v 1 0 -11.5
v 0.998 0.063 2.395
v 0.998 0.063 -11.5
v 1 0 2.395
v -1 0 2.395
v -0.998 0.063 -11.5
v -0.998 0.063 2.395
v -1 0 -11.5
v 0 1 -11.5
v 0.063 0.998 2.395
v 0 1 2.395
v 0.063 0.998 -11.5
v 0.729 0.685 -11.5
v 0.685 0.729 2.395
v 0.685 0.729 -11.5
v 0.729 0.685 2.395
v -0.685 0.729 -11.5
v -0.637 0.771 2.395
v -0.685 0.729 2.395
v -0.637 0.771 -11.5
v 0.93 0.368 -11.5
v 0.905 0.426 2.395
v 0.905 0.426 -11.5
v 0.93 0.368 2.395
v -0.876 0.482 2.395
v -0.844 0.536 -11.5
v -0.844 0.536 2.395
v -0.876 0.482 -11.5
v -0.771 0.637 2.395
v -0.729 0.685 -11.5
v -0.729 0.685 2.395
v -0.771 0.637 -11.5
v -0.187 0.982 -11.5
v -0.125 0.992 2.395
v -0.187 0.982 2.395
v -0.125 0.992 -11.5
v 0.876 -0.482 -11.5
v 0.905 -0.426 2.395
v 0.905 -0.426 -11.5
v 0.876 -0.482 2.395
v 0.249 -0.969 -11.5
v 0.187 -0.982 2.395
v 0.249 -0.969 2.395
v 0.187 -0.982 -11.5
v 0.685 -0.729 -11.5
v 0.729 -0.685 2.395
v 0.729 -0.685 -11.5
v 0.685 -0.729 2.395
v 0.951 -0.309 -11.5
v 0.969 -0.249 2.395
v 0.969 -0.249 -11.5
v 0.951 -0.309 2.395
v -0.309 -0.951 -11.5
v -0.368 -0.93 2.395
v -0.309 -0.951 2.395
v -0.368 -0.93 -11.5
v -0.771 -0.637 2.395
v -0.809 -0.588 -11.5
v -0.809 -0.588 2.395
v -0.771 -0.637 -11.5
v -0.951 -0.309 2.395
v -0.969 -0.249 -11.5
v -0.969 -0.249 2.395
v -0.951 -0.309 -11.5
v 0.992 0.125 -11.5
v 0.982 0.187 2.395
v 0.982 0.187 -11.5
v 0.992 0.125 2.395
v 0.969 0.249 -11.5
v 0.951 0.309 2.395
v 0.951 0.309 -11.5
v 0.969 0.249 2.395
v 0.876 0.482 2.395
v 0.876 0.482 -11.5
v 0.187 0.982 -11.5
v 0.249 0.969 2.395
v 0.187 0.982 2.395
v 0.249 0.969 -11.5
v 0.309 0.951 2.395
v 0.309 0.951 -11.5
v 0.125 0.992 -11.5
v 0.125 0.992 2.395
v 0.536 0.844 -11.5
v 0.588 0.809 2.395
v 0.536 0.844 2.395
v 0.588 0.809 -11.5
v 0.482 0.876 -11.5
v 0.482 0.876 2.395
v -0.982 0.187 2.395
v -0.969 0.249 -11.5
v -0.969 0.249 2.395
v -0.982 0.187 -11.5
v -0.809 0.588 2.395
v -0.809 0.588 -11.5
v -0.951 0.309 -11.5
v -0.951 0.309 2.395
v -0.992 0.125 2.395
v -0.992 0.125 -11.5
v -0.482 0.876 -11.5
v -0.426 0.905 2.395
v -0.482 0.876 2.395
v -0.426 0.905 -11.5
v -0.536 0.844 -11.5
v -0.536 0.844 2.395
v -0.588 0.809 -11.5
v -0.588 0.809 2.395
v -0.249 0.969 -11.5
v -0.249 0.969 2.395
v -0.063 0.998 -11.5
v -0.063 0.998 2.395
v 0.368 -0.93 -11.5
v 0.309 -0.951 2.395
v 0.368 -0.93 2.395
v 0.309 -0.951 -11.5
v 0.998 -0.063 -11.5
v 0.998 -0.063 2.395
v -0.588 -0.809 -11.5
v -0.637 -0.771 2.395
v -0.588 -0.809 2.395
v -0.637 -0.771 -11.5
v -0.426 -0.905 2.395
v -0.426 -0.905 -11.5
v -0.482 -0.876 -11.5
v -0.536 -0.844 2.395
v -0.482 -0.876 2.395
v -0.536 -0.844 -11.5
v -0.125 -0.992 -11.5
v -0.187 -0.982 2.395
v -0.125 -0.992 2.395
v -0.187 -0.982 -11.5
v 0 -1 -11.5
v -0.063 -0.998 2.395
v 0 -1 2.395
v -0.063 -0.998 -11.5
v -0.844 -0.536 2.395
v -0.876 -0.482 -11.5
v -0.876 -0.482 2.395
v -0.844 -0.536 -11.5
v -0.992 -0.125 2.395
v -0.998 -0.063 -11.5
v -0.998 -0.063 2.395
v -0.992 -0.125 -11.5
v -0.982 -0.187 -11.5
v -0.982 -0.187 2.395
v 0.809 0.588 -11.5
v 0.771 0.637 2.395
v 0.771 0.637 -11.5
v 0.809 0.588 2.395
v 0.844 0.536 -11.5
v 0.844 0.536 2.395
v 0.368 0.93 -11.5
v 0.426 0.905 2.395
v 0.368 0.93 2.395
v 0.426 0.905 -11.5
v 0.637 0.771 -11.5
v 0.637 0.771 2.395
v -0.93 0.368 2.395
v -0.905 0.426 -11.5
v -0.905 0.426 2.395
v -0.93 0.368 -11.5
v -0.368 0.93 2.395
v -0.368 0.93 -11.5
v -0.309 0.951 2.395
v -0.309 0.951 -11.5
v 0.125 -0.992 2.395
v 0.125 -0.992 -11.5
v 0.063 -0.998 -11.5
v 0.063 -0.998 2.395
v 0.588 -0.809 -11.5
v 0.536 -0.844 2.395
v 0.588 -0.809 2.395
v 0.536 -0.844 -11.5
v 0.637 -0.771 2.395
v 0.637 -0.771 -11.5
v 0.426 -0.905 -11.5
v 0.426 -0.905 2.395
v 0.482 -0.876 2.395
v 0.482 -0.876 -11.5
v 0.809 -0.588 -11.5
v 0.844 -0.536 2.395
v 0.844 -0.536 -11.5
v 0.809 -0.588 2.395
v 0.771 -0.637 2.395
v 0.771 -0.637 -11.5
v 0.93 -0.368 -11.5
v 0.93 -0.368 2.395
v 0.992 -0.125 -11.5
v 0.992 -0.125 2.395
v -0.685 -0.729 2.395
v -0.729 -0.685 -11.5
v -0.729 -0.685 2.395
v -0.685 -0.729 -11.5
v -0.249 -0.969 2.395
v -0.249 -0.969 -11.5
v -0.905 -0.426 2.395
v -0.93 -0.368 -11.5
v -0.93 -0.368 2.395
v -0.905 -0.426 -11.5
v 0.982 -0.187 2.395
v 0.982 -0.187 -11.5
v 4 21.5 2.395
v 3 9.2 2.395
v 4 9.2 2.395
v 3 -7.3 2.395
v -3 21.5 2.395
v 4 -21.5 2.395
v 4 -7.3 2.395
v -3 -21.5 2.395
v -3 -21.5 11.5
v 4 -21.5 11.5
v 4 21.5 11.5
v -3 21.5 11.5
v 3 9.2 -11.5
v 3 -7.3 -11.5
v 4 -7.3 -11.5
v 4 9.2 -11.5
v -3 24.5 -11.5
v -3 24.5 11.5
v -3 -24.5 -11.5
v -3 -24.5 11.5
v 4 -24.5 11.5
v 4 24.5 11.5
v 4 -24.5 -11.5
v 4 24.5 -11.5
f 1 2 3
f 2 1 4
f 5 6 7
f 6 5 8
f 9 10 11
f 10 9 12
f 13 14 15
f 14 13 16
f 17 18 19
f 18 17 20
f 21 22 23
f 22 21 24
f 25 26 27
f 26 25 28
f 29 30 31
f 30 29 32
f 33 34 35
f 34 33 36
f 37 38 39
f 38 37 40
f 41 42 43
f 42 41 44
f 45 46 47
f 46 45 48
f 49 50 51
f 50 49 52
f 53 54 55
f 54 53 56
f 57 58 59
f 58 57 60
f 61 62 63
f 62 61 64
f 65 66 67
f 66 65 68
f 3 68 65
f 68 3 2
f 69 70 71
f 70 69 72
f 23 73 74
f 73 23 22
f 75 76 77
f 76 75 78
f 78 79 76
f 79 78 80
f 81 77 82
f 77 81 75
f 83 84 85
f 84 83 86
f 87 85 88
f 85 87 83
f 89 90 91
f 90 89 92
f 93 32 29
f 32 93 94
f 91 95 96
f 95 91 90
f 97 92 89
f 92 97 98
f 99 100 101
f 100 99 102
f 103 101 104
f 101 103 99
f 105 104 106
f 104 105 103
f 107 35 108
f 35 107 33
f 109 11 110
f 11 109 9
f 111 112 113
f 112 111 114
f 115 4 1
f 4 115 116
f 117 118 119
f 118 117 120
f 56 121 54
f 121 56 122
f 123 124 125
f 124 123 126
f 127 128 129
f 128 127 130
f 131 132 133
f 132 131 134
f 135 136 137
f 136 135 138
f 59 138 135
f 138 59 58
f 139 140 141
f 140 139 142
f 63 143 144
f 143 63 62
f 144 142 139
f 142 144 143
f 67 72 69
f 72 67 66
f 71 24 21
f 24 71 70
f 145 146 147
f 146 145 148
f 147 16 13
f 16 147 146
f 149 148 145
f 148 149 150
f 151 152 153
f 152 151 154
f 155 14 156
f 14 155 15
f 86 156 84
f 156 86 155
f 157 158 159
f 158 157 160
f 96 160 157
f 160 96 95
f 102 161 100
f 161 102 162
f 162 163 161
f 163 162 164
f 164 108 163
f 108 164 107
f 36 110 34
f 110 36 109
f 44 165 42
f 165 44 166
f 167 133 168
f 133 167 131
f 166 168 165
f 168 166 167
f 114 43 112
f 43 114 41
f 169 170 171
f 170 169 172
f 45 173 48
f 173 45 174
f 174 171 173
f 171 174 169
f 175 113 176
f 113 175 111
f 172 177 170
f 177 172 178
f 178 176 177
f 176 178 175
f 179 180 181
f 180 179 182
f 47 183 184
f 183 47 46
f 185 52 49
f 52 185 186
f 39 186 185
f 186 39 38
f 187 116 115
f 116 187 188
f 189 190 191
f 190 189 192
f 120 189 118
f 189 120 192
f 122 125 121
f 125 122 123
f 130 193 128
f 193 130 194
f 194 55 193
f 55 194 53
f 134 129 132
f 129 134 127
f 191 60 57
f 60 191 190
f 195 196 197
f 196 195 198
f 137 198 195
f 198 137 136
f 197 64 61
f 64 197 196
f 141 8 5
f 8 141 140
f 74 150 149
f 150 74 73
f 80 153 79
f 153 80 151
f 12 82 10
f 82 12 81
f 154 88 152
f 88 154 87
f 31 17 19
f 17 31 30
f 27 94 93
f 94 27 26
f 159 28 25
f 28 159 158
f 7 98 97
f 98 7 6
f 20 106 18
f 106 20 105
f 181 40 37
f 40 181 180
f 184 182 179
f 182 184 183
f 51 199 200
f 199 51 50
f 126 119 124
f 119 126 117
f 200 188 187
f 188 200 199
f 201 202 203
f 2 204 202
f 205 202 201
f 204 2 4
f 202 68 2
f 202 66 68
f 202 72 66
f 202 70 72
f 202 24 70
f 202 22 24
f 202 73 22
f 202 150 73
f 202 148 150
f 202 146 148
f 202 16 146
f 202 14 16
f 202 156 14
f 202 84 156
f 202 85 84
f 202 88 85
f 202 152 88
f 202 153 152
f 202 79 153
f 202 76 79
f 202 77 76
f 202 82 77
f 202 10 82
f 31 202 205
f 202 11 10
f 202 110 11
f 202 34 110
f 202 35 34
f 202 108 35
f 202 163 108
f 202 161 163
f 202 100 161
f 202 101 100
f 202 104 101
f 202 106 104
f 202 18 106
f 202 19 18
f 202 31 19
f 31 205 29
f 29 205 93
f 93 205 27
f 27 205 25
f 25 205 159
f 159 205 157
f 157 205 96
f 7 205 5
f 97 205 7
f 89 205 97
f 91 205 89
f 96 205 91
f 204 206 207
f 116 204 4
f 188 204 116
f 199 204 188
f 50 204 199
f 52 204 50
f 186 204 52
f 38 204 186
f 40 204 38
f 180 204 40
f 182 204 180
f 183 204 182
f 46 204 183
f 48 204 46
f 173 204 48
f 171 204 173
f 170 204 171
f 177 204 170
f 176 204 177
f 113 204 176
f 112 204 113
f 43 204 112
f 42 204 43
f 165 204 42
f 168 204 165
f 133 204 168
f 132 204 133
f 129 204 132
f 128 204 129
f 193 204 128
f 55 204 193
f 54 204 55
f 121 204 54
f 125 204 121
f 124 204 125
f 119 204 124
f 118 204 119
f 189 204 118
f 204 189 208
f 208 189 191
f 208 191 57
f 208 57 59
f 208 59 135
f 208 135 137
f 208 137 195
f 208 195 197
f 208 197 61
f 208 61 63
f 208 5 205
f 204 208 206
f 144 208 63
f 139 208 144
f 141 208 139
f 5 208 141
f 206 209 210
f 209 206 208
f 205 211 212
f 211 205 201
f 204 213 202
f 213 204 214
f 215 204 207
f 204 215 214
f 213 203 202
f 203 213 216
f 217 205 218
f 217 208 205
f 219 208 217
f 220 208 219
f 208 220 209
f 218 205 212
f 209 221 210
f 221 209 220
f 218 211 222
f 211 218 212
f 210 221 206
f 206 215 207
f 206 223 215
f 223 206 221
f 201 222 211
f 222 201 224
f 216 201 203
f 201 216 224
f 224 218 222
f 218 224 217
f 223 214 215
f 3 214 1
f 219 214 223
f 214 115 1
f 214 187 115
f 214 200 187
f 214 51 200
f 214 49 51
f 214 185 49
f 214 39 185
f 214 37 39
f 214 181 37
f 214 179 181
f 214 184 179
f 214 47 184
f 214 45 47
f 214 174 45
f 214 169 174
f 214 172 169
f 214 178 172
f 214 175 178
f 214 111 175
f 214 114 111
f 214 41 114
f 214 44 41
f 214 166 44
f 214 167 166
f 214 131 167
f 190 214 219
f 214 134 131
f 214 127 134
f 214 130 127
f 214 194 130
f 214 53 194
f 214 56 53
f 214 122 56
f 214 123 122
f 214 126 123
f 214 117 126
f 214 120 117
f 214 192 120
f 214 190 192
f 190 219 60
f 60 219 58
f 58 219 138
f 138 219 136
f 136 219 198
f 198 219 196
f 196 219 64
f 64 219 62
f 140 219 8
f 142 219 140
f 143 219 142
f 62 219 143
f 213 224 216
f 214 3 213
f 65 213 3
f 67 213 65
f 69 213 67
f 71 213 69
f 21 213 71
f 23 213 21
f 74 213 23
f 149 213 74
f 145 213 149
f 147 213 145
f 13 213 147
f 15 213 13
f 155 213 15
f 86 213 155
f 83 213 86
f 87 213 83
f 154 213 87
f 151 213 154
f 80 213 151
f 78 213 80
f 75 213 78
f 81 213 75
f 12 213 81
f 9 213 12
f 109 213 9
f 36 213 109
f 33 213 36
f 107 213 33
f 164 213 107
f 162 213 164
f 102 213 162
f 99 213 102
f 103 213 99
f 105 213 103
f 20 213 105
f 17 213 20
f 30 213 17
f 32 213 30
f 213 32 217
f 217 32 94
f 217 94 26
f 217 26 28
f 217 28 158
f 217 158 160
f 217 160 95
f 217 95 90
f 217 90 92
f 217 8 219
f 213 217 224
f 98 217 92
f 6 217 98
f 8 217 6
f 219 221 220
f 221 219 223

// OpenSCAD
w = 6;
d = 43;
h = 23;
t = 3;


k = 16.5;
h2 = 9.1;

r = 1;

x1 = 18.8;
x2 = 16.9;

$fn=100;
e=.01;

difference(){
    translate([.5,0,0])
    cube(size = [w+1, d+2*t, h], center= true);
    union(){
        cylinder(h+e, r, r, center=true);
        
        translate([.5,0,(h-h2)/2])
        cube(size = [w+1+e, d, h2+e], center= true);
        
        translate([3+k/2,(x1-x2)/2,0])
        cube(size = [k, k, h+e], center= true);
        
        
    }
}
